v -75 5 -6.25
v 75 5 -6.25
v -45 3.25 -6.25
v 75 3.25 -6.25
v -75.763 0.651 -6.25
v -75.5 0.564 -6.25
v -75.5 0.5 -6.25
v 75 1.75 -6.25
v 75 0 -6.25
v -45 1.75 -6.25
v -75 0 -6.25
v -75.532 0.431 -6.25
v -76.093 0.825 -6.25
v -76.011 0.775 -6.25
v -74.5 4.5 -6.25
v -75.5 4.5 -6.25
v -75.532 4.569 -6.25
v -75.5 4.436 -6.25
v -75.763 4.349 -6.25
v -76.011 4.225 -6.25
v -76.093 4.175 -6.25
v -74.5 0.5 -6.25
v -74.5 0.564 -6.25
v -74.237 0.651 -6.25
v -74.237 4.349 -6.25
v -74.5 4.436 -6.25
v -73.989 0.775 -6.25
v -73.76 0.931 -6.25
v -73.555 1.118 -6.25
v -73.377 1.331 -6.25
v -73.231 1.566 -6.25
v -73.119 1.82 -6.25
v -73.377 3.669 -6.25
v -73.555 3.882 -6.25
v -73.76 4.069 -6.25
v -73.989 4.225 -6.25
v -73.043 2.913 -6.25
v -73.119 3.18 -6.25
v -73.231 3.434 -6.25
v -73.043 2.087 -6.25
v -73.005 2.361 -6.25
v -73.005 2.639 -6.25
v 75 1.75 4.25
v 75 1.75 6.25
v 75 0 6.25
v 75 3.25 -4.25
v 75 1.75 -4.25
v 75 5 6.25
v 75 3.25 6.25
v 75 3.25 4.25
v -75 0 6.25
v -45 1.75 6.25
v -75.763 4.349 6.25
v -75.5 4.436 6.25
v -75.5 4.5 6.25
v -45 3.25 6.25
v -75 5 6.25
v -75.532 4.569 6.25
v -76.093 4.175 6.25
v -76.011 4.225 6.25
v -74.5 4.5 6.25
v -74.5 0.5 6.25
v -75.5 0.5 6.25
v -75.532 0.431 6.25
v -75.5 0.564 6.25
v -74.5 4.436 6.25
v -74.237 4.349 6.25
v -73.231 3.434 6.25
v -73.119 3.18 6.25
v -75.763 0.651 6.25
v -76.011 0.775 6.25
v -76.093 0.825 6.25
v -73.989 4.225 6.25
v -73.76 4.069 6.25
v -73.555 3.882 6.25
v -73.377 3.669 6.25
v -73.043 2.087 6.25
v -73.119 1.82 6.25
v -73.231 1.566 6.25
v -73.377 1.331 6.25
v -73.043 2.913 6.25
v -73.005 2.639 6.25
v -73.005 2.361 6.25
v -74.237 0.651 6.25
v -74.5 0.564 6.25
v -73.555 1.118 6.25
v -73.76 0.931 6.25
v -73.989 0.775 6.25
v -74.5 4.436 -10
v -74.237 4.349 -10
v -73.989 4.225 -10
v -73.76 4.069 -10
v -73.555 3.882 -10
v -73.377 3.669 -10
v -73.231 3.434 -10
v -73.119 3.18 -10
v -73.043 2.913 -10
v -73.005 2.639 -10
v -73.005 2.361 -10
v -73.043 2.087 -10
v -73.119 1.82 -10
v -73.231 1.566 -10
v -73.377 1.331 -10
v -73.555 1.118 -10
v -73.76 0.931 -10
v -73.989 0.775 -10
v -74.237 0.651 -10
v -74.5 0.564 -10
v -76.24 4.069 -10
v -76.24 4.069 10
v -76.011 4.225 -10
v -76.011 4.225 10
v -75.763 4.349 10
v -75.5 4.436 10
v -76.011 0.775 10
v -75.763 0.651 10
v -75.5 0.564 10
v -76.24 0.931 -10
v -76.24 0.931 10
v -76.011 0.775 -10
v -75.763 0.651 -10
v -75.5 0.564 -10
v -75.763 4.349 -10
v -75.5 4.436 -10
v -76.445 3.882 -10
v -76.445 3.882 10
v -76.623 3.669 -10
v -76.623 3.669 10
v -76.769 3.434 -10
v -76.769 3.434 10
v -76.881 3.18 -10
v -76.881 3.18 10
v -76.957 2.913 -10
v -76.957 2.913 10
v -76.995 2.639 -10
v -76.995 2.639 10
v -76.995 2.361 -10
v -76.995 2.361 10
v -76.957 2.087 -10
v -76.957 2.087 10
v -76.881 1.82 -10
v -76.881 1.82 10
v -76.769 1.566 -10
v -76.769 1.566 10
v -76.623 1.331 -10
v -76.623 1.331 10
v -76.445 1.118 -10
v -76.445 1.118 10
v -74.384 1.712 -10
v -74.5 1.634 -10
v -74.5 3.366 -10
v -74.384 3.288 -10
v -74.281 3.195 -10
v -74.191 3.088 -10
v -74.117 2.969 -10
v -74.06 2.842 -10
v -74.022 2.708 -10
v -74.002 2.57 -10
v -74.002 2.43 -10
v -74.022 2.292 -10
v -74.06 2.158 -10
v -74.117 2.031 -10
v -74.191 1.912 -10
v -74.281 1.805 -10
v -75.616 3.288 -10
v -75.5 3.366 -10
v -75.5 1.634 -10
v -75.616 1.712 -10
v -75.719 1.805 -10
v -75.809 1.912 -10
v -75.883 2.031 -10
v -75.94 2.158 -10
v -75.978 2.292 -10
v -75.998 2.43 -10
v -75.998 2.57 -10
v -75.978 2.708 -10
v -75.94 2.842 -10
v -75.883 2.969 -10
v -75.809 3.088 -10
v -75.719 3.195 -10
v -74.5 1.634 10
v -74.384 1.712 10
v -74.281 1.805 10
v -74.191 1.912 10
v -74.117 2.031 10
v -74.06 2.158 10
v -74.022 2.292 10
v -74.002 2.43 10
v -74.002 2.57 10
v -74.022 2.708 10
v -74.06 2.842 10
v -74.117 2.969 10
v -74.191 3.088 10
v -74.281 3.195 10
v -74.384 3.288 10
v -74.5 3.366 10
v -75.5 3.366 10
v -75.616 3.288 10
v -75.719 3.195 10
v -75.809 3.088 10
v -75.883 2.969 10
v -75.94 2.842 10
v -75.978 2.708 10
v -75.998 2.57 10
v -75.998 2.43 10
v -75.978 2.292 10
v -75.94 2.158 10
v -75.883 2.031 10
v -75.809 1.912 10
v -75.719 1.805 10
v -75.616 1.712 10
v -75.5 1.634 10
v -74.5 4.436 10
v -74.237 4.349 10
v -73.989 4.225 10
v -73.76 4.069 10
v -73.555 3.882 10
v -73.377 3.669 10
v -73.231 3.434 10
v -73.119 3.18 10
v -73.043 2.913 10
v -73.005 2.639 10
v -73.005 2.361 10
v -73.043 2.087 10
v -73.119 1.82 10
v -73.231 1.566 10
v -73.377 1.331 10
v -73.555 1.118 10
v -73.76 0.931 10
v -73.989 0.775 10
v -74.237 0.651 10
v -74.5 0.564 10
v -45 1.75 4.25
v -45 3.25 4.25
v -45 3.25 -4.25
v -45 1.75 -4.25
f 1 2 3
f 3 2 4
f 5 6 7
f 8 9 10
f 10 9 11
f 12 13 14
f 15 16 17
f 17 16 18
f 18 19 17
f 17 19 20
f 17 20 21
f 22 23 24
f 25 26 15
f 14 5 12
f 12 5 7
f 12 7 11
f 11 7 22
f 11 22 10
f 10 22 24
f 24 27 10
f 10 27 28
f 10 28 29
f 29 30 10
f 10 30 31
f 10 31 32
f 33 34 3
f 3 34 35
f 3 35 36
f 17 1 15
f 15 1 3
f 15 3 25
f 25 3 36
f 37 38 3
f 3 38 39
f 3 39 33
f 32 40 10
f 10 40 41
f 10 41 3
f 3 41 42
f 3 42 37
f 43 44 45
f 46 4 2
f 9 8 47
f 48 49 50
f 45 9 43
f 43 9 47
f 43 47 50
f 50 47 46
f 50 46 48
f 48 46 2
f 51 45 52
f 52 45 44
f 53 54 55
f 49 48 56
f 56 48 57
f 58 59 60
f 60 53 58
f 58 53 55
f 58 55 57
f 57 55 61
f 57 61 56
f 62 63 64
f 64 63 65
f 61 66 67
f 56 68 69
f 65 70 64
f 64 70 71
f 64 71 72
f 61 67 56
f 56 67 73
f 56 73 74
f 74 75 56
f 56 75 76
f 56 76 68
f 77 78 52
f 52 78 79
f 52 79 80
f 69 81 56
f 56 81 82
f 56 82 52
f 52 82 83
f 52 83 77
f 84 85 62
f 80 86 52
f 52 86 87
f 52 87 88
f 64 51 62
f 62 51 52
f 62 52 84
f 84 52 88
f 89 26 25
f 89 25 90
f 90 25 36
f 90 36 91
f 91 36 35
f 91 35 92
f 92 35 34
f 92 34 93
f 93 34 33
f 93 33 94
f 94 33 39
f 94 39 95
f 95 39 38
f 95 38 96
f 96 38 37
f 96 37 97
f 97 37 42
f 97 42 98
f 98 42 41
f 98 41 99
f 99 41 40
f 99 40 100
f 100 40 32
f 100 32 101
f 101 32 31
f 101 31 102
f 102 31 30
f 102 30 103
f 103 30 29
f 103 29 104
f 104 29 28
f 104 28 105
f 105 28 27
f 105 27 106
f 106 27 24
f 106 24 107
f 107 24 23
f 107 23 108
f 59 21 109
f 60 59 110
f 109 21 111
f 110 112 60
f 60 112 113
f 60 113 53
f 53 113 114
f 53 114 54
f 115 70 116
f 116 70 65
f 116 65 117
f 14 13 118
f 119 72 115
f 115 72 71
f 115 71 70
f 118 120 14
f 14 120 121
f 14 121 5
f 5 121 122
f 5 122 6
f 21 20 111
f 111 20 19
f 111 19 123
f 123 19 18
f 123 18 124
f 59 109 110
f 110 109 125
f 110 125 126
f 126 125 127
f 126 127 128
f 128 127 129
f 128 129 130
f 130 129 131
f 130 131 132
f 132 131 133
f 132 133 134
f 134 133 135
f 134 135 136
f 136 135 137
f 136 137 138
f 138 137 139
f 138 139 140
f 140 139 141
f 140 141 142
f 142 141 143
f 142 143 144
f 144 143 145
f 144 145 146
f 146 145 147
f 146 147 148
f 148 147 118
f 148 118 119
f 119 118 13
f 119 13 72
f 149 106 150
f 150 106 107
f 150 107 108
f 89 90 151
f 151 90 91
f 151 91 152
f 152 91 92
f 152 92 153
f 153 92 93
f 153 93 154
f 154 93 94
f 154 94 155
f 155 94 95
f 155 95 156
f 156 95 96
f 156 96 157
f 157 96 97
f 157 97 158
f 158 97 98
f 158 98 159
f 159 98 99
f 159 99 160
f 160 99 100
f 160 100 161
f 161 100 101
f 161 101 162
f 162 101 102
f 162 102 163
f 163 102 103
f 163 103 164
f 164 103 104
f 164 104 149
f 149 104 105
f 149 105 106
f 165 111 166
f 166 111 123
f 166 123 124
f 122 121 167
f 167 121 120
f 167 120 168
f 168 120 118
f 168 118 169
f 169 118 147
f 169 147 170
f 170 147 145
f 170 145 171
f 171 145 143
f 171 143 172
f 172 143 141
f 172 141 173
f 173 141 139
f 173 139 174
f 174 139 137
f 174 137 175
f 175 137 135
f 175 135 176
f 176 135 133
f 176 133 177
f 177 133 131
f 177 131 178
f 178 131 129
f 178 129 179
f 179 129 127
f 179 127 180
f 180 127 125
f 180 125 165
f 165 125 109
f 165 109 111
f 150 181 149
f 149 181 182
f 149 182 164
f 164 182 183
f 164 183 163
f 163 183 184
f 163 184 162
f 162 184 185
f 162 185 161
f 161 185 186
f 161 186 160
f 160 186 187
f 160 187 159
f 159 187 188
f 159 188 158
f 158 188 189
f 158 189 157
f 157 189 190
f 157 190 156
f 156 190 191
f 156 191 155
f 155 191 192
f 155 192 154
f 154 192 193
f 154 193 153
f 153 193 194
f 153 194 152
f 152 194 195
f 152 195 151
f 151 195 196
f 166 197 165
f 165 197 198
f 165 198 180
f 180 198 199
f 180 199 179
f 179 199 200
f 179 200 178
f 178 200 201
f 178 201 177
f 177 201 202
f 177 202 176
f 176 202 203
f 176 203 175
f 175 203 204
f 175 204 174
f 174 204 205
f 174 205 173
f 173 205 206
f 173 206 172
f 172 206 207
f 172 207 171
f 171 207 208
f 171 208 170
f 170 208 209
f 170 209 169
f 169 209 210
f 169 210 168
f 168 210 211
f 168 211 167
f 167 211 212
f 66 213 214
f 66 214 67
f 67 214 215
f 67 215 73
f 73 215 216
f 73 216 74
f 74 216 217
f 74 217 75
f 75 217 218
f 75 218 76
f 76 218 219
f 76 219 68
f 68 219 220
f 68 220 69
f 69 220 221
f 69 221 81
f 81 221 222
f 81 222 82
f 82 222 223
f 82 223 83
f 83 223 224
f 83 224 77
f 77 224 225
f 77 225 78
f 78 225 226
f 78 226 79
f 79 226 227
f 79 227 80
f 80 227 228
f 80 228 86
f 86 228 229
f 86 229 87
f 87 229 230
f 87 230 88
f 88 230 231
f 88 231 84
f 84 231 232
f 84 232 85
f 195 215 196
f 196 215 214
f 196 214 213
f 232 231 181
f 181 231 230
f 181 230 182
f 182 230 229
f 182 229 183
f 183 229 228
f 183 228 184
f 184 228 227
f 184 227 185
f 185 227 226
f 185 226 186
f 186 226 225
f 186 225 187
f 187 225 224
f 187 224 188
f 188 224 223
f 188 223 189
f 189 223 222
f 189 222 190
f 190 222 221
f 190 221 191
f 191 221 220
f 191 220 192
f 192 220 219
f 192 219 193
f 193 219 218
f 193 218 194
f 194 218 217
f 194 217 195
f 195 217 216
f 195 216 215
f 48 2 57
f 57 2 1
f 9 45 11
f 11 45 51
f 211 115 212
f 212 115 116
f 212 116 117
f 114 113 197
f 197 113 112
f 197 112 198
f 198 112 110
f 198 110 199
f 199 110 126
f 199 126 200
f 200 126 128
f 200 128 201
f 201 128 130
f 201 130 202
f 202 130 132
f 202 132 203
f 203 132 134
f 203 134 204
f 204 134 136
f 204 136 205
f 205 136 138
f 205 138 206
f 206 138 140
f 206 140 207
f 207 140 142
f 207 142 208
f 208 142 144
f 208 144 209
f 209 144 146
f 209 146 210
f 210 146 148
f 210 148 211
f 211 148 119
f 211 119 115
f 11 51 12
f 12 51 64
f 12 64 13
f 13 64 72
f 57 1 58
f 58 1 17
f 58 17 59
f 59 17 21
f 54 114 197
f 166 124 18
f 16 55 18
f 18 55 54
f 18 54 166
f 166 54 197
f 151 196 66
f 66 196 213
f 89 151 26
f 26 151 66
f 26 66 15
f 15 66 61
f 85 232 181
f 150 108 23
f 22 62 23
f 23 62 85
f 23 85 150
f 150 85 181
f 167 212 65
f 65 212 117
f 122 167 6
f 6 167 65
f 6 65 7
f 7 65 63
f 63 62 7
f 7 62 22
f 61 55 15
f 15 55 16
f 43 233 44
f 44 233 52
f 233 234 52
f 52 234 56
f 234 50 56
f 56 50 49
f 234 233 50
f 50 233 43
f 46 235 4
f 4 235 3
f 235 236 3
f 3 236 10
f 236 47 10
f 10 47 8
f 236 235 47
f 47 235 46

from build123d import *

# Parameters (mm, degrees)
SKETCH2_W                = 150
SKETCH2_H                = 12.5
BOSS_EXTRUDE1_DEPTH      = 5
BOSS_EXTRUDE2_DEPTH      = 10
BOSS_EXTRUDE2_DEPTH_BACK = 10
SKETCH3_R                = 2
FILLET1_R                = 10
SKETCH4_R                = 1
CUT_EXTRUDE1_DEPTH       = 80.711981534
CUT_EXTRUDE2_START       = -20
SKETCH5_W                = 1
SKETCH5_H                = 4
CUT_EXTRUDE2_DEPTH       = 20
SKETCH6_W                = 120
SKETCH6_H                = 1.5
CUT_EXTRUDE3_DEPTH       = 2


with BuildPart() as part:
    # Sketch2 → Boss-Extrude1 (new body)
    with BuildSketch(Plane(origin=(0, 0, 0), x_dir=(1, 0, 0), z_dir=(0, 1, 0))):
        Rectangle(SKETCH2_W, SKETCH2_H)
    extrude(amount=BOSS_EXTRUDE1_DEPTH)

    # Sketch3 → Boss-Extrude2 (add, two sides: drawn at the far end of the back side and taken through both)
    with BuildSketch(Plane.XY.offset(-BOSS_EXTRUDE2_DEPTH_BACK)):
        with Locations((-75, 2.5)):
            Circle(SKETCH3_R)
    extrude(amount=BOSS_EXTRUDE2_DEPTH + BOSS_EXTRUDE2_DEPTH_BACK)

    # Fillet1
    # the kernel refuses this fillet: 10 mm, written as the material it adds along each edge
    with BuildSketch(Plane(origin=(-75, 4.5, 6.25), x_dir=(-5.0590642785823295e-12, 1.0, 0), z_dir=(0, 0, -1))) as fillet1_piece_1:
        with BuildLine():
            CenterArc((8.05, -6.557247898), FILLET1_R, 139.025369771, 7.851690022)
            Line((-0.325, -1.09287465), (-0.4925, -0.983587185))
            ThreePointArc((-0.4925, -0.983587185), (-0.274673944, -0.513078941), (-0.2, 0))
            Line((-0.2, 0), (0, 0.2))
            ThreePointArc((0, 0.2), (0.25, 0.2), (0.349, 0.131144958))
            Line((0.349, 0.131144958), (0.5, 0))
        make_face()
    extrude(amount=6.25)
    with BuildSketch(Plane(origin=(-75, 0.5, 6.25), x_dir=(-5.059064278582354e-12, -1.0, 0), z_dir=(0, 0, -1)), Plane(origin=(-75, 4.5, -6.25), x_dir=(-5.0590642785823295e-12, 1.0, 0), z_dir=(0, 0, 1))) as fillet1_piece_2:
        with BuildLine():
            CenterArc((8.05, 6.557247898), FILLET1_R, 213.122940208, 7.851690022)
            Line((-0.325, 1.09287465), (-0.4925, 0.983587185))
            ThreePointArc((-0.4925, 0.983587185), (-0.274673944, 0.513078941), (-0.2, 0))
            Line((-0.2, 0), (0, -0.2))
            ThreePointArc((0, -0.2), (0.25, -0.2), (0.349, -0.131144958))
            Line((0.349, -0.131144958), (0.5, 0))
        make_face()
    extrude(amount=6.25)
    with BuildSketch(Plane(origin=(-75, 0.5, -6.25), x_dir=(-0.9585144756337048, 0.2850438562759136, 0), z_dir=(0, 0, 1))) as fillet1_piece_3:
        with BuildLine():
            CenterArc((3.990613988, 9.585144756), FILLET1_R, 245.586839874, 7.851690022)
            Line((-0.142521928, 0.479257238), (-0.225184646, 0.297139487))
            ThreePointArc((-0.225184646, 0.297139487), (-0.262963859, 0.182619848), (-0.191702895, -0.057008771))
            Line((-0.191702895, -0.057008771), (0.057008771, -0.191702895))
            ThreePointArc((0.057008771, -0.191702895), (0.570087713, -0.117028951), (1.083166654, -0.191702895))
            Line((1.083166654, -0.191702895), (1.140175425, 0))
        make_face()
    extrude(amount=6.25)

    # Sketch4 → Cut-Extrude1 (cut, through all)
    with BuildSketch(Plane.XY.offset(10)):
        with Locations((-75, 2.5)):
            Circle(SKETCH4_R)
    extrude(amount=-CUT_EXTRUDE1_DEPTH, mode=Mode.SUBTRACT)

    # Sketch5 → Cut-Extrude2 (cut)
    with BuildSketch(Plane.XY.offset(10).offset(CUT_EXTRUDE2_START)):
        with Locations((-75, 2.5)):
            Rectangle(SKETCH5_W, SKETCH5_H)
    cut_extrude2 = extrude(amount=CUT_EXTRUDE2_DEPTH, mode=Mode.SUBTRACT)

    # Mirror3: Cut-Extrude2 across plane
    add(cut_extrude2.mirror(Plane.XY), mode=Mode.SUBTRACT)

    # Sketch6 → Cut-Extrude3 (cut)
    with BuildSketch(Plane.XY.offset(6.25)):
        with Locations((15, 2.5)):
            Rectangle(SKETCH6_W, SKETCH6_H)
    cut_extrude3 = extrude(amount=-CUT_EXTRUDE3_DEPTH, mode=Mode.SUBTRACT)

    # Mirror4: Cut-Extrude3 across plane
    add(cut_extrude3.mirror(Plane.XY), mode=Mode.SUBTRACT)


solid = part.part
